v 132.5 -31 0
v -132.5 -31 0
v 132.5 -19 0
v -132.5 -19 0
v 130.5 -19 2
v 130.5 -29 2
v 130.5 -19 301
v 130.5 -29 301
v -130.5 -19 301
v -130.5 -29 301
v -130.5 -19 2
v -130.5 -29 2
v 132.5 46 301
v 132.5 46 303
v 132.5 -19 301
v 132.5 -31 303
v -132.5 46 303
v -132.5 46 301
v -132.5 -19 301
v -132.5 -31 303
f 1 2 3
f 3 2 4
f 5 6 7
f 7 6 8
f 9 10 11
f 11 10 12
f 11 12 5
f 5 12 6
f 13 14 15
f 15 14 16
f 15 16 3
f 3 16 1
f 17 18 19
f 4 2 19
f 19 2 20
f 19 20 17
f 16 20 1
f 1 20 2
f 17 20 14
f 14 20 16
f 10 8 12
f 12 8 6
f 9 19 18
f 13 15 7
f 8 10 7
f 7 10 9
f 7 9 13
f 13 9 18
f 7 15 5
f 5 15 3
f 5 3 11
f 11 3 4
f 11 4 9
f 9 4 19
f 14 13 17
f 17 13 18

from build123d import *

# Parameters (mm, degrees)
SKETCH1_W           = 265
SKETCH1_H           = 62
BOSS_EXTRUDE1_DEPTH = 303
SHELL1_T            = -2
SKETCH2_W           = 265
SKETCH2_H           = 301
CUT_EXTRUDE1_DEPTH  = 50
SKETCH3_W           = 265
SKETCH3_H           = 2
BOSS_EXTRUDE2_DEPTH = 15


with BuildPart() as part:
    # Sketch1 → Boss-Extrude1 (new body)
    with BuildSketch(Plane.XY):
        Rectangle(SKETCH1_W, SKETCH1_H)
    extrude(amount=BOSS_EXTRUDE1_DEPTH)

    # Shell1
    shell1_openings = [part.faces().sort_by_distance(p)[0] for p in [
        (0, 31, 151.5),
    ]]
    offset(amount=SHELL1_T, openings=shell1_openings, kind=Kind.INTERSECTION)

    # Sketch2 → Cut-Extrude1 (cut)
    with BuildSketch(Plane(origin=(0, 31, 0), x_dir=(1, 0, 0), z_dir=(0, 1, 0))):
        with Locations((0, -150.5)):
            Rectangle(SKETCH2_W, SKETCH2_H)
    extrude(amount=-CUT_EXTRUDE1_DEPTH, mode=Mode.SUBTRACT)

    # Sketch3 → Boss-Extrude2 (add)
    with BuildSketch(Plane(origin=(0, 31, 0), x_dir=(1, 0, 0), z_dir=(0, 1, 0))):
        with Locations((0, -302)):
            Rectangle(SKETCH3_W, SKETCH3_H)
    extrude(amount=BOSS_EXTRUDE2_DEPTH)


solid = part.part
